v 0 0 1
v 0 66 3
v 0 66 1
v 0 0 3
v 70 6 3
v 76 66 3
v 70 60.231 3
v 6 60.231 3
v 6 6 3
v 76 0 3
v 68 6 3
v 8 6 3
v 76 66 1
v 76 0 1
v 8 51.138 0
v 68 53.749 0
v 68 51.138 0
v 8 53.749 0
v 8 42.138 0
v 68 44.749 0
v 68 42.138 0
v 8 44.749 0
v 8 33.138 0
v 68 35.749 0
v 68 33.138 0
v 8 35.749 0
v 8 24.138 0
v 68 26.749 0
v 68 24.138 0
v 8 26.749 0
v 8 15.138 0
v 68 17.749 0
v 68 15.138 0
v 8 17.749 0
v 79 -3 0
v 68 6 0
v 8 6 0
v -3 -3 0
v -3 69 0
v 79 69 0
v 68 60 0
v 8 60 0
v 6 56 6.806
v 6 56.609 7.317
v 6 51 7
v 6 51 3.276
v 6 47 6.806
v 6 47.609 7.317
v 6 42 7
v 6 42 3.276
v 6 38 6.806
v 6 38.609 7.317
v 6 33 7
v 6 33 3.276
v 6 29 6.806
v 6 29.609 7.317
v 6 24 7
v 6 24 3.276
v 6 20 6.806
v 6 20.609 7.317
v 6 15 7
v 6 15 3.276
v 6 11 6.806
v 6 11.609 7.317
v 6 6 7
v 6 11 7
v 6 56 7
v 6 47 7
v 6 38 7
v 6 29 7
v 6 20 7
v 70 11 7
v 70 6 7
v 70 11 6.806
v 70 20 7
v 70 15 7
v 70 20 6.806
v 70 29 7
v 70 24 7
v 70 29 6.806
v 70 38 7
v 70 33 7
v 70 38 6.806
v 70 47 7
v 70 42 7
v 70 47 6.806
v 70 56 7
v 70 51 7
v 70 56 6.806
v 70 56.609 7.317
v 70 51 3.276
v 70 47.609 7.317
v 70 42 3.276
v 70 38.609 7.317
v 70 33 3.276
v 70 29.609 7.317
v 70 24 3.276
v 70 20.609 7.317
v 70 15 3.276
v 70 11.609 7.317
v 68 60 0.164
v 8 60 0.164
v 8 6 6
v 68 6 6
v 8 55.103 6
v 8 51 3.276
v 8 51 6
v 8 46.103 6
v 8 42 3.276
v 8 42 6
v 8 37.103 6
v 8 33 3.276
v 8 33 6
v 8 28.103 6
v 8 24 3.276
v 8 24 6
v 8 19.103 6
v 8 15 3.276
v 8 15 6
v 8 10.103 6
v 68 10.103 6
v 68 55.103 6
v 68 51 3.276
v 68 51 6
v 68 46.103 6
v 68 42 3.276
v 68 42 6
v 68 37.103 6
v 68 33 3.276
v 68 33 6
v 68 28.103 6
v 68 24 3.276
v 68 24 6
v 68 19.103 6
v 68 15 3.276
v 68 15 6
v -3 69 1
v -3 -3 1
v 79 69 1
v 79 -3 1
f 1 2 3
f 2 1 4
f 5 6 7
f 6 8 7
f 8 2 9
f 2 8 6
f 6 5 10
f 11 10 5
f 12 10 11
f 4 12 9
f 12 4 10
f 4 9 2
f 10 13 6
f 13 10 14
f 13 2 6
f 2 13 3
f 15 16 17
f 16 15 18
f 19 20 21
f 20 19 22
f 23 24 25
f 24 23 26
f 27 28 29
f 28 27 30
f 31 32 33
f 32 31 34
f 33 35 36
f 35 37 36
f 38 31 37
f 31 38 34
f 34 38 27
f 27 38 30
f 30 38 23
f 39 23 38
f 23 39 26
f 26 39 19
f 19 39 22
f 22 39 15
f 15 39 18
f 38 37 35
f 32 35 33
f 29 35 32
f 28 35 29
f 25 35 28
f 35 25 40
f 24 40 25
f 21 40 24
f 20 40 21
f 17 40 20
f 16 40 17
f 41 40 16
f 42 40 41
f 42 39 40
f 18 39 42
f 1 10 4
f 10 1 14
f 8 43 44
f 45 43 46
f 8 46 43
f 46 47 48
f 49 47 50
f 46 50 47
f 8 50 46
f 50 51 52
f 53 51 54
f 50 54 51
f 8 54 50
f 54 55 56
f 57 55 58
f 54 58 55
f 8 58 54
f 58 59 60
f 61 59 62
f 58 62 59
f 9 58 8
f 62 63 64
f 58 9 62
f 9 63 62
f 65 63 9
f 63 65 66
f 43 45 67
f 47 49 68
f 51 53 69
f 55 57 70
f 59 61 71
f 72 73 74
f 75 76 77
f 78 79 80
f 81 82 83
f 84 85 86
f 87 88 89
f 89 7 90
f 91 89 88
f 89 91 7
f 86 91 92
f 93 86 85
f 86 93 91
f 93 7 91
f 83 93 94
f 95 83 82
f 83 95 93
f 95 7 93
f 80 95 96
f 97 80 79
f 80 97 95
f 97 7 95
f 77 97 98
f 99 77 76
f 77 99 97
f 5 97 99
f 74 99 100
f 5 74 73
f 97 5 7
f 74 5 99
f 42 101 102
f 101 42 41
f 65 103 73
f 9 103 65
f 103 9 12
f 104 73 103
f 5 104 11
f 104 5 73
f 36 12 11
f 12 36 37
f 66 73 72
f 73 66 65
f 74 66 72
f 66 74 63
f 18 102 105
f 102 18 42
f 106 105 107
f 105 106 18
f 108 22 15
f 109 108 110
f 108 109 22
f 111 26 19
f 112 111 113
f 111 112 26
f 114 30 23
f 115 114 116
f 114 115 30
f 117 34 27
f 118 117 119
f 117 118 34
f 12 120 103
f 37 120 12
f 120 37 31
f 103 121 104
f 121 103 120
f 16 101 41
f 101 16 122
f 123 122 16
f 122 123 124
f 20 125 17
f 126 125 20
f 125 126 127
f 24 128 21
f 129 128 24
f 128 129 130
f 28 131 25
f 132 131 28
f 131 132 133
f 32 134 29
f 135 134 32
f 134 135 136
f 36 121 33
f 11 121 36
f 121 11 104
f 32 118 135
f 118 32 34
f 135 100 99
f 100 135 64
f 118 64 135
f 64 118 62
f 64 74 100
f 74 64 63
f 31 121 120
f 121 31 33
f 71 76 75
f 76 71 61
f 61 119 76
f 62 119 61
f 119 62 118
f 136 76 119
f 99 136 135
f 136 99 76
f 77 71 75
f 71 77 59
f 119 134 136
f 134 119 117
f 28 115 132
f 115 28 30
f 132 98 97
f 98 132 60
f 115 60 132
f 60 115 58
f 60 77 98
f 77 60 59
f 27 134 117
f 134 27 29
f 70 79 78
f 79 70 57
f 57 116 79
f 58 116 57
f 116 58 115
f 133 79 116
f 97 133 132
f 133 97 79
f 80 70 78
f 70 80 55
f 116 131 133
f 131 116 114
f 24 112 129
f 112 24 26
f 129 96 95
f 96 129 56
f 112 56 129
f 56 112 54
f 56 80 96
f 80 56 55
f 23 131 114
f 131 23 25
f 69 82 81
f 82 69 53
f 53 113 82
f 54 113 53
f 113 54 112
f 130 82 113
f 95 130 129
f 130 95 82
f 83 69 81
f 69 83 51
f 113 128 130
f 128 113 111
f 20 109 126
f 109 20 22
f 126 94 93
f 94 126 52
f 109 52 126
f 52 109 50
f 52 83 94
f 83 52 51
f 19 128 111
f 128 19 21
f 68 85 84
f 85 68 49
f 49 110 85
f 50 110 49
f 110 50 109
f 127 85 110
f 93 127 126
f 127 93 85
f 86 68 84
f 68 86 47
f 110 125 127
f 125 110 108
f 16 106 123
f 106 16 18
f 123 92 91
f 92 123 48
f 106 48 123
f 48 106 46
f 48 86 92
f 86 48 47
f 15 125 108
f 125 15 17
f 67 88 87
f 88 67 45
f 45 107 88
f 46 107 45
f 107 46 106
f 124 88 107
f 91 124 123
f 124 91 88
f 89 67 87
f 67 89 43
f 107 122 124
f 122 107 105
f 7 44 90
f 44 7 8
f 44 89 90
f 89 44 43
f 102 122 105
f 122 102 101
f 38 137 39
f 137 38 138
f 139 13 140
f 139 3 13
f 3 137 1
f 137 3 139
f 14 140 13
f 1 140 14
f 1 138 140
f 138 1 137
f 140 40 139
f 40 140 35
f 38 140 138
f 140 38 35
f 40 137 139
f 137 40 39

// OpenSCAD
translate([-3, -3, 0]) {
    difference() {
        cube([82,  72, 1]);
        translate([3, 3, 0]) {
            cube([76,  66, 1]);
        }
    }
}
difference() {
    cube([76,  66, 3]);
    translate([6, 6, 0]) {
        cube([64,  54, 6]);
    }
}

module parte(inicio) {
        translate([6, inicio, 0]) {
            difference() {
                cube([64, 5, 7]);
                translate([2, 0, 0]) {
                    cube([60,  8, 6]);
                }
            }
            rotate([-50, 0, 0]) {
                difference() {
                    translate ([0, -2, 1]) cube([64, 10, 8]);
                    translate([2, -2, 0]) {
                        cube([60,  8, 7]);
                    }
                }
            }
        }
}

for(variable = [6 : 9 : 59])
    intersection() {
        cube([70,  72, 8]);
        parte(variable);
    }
